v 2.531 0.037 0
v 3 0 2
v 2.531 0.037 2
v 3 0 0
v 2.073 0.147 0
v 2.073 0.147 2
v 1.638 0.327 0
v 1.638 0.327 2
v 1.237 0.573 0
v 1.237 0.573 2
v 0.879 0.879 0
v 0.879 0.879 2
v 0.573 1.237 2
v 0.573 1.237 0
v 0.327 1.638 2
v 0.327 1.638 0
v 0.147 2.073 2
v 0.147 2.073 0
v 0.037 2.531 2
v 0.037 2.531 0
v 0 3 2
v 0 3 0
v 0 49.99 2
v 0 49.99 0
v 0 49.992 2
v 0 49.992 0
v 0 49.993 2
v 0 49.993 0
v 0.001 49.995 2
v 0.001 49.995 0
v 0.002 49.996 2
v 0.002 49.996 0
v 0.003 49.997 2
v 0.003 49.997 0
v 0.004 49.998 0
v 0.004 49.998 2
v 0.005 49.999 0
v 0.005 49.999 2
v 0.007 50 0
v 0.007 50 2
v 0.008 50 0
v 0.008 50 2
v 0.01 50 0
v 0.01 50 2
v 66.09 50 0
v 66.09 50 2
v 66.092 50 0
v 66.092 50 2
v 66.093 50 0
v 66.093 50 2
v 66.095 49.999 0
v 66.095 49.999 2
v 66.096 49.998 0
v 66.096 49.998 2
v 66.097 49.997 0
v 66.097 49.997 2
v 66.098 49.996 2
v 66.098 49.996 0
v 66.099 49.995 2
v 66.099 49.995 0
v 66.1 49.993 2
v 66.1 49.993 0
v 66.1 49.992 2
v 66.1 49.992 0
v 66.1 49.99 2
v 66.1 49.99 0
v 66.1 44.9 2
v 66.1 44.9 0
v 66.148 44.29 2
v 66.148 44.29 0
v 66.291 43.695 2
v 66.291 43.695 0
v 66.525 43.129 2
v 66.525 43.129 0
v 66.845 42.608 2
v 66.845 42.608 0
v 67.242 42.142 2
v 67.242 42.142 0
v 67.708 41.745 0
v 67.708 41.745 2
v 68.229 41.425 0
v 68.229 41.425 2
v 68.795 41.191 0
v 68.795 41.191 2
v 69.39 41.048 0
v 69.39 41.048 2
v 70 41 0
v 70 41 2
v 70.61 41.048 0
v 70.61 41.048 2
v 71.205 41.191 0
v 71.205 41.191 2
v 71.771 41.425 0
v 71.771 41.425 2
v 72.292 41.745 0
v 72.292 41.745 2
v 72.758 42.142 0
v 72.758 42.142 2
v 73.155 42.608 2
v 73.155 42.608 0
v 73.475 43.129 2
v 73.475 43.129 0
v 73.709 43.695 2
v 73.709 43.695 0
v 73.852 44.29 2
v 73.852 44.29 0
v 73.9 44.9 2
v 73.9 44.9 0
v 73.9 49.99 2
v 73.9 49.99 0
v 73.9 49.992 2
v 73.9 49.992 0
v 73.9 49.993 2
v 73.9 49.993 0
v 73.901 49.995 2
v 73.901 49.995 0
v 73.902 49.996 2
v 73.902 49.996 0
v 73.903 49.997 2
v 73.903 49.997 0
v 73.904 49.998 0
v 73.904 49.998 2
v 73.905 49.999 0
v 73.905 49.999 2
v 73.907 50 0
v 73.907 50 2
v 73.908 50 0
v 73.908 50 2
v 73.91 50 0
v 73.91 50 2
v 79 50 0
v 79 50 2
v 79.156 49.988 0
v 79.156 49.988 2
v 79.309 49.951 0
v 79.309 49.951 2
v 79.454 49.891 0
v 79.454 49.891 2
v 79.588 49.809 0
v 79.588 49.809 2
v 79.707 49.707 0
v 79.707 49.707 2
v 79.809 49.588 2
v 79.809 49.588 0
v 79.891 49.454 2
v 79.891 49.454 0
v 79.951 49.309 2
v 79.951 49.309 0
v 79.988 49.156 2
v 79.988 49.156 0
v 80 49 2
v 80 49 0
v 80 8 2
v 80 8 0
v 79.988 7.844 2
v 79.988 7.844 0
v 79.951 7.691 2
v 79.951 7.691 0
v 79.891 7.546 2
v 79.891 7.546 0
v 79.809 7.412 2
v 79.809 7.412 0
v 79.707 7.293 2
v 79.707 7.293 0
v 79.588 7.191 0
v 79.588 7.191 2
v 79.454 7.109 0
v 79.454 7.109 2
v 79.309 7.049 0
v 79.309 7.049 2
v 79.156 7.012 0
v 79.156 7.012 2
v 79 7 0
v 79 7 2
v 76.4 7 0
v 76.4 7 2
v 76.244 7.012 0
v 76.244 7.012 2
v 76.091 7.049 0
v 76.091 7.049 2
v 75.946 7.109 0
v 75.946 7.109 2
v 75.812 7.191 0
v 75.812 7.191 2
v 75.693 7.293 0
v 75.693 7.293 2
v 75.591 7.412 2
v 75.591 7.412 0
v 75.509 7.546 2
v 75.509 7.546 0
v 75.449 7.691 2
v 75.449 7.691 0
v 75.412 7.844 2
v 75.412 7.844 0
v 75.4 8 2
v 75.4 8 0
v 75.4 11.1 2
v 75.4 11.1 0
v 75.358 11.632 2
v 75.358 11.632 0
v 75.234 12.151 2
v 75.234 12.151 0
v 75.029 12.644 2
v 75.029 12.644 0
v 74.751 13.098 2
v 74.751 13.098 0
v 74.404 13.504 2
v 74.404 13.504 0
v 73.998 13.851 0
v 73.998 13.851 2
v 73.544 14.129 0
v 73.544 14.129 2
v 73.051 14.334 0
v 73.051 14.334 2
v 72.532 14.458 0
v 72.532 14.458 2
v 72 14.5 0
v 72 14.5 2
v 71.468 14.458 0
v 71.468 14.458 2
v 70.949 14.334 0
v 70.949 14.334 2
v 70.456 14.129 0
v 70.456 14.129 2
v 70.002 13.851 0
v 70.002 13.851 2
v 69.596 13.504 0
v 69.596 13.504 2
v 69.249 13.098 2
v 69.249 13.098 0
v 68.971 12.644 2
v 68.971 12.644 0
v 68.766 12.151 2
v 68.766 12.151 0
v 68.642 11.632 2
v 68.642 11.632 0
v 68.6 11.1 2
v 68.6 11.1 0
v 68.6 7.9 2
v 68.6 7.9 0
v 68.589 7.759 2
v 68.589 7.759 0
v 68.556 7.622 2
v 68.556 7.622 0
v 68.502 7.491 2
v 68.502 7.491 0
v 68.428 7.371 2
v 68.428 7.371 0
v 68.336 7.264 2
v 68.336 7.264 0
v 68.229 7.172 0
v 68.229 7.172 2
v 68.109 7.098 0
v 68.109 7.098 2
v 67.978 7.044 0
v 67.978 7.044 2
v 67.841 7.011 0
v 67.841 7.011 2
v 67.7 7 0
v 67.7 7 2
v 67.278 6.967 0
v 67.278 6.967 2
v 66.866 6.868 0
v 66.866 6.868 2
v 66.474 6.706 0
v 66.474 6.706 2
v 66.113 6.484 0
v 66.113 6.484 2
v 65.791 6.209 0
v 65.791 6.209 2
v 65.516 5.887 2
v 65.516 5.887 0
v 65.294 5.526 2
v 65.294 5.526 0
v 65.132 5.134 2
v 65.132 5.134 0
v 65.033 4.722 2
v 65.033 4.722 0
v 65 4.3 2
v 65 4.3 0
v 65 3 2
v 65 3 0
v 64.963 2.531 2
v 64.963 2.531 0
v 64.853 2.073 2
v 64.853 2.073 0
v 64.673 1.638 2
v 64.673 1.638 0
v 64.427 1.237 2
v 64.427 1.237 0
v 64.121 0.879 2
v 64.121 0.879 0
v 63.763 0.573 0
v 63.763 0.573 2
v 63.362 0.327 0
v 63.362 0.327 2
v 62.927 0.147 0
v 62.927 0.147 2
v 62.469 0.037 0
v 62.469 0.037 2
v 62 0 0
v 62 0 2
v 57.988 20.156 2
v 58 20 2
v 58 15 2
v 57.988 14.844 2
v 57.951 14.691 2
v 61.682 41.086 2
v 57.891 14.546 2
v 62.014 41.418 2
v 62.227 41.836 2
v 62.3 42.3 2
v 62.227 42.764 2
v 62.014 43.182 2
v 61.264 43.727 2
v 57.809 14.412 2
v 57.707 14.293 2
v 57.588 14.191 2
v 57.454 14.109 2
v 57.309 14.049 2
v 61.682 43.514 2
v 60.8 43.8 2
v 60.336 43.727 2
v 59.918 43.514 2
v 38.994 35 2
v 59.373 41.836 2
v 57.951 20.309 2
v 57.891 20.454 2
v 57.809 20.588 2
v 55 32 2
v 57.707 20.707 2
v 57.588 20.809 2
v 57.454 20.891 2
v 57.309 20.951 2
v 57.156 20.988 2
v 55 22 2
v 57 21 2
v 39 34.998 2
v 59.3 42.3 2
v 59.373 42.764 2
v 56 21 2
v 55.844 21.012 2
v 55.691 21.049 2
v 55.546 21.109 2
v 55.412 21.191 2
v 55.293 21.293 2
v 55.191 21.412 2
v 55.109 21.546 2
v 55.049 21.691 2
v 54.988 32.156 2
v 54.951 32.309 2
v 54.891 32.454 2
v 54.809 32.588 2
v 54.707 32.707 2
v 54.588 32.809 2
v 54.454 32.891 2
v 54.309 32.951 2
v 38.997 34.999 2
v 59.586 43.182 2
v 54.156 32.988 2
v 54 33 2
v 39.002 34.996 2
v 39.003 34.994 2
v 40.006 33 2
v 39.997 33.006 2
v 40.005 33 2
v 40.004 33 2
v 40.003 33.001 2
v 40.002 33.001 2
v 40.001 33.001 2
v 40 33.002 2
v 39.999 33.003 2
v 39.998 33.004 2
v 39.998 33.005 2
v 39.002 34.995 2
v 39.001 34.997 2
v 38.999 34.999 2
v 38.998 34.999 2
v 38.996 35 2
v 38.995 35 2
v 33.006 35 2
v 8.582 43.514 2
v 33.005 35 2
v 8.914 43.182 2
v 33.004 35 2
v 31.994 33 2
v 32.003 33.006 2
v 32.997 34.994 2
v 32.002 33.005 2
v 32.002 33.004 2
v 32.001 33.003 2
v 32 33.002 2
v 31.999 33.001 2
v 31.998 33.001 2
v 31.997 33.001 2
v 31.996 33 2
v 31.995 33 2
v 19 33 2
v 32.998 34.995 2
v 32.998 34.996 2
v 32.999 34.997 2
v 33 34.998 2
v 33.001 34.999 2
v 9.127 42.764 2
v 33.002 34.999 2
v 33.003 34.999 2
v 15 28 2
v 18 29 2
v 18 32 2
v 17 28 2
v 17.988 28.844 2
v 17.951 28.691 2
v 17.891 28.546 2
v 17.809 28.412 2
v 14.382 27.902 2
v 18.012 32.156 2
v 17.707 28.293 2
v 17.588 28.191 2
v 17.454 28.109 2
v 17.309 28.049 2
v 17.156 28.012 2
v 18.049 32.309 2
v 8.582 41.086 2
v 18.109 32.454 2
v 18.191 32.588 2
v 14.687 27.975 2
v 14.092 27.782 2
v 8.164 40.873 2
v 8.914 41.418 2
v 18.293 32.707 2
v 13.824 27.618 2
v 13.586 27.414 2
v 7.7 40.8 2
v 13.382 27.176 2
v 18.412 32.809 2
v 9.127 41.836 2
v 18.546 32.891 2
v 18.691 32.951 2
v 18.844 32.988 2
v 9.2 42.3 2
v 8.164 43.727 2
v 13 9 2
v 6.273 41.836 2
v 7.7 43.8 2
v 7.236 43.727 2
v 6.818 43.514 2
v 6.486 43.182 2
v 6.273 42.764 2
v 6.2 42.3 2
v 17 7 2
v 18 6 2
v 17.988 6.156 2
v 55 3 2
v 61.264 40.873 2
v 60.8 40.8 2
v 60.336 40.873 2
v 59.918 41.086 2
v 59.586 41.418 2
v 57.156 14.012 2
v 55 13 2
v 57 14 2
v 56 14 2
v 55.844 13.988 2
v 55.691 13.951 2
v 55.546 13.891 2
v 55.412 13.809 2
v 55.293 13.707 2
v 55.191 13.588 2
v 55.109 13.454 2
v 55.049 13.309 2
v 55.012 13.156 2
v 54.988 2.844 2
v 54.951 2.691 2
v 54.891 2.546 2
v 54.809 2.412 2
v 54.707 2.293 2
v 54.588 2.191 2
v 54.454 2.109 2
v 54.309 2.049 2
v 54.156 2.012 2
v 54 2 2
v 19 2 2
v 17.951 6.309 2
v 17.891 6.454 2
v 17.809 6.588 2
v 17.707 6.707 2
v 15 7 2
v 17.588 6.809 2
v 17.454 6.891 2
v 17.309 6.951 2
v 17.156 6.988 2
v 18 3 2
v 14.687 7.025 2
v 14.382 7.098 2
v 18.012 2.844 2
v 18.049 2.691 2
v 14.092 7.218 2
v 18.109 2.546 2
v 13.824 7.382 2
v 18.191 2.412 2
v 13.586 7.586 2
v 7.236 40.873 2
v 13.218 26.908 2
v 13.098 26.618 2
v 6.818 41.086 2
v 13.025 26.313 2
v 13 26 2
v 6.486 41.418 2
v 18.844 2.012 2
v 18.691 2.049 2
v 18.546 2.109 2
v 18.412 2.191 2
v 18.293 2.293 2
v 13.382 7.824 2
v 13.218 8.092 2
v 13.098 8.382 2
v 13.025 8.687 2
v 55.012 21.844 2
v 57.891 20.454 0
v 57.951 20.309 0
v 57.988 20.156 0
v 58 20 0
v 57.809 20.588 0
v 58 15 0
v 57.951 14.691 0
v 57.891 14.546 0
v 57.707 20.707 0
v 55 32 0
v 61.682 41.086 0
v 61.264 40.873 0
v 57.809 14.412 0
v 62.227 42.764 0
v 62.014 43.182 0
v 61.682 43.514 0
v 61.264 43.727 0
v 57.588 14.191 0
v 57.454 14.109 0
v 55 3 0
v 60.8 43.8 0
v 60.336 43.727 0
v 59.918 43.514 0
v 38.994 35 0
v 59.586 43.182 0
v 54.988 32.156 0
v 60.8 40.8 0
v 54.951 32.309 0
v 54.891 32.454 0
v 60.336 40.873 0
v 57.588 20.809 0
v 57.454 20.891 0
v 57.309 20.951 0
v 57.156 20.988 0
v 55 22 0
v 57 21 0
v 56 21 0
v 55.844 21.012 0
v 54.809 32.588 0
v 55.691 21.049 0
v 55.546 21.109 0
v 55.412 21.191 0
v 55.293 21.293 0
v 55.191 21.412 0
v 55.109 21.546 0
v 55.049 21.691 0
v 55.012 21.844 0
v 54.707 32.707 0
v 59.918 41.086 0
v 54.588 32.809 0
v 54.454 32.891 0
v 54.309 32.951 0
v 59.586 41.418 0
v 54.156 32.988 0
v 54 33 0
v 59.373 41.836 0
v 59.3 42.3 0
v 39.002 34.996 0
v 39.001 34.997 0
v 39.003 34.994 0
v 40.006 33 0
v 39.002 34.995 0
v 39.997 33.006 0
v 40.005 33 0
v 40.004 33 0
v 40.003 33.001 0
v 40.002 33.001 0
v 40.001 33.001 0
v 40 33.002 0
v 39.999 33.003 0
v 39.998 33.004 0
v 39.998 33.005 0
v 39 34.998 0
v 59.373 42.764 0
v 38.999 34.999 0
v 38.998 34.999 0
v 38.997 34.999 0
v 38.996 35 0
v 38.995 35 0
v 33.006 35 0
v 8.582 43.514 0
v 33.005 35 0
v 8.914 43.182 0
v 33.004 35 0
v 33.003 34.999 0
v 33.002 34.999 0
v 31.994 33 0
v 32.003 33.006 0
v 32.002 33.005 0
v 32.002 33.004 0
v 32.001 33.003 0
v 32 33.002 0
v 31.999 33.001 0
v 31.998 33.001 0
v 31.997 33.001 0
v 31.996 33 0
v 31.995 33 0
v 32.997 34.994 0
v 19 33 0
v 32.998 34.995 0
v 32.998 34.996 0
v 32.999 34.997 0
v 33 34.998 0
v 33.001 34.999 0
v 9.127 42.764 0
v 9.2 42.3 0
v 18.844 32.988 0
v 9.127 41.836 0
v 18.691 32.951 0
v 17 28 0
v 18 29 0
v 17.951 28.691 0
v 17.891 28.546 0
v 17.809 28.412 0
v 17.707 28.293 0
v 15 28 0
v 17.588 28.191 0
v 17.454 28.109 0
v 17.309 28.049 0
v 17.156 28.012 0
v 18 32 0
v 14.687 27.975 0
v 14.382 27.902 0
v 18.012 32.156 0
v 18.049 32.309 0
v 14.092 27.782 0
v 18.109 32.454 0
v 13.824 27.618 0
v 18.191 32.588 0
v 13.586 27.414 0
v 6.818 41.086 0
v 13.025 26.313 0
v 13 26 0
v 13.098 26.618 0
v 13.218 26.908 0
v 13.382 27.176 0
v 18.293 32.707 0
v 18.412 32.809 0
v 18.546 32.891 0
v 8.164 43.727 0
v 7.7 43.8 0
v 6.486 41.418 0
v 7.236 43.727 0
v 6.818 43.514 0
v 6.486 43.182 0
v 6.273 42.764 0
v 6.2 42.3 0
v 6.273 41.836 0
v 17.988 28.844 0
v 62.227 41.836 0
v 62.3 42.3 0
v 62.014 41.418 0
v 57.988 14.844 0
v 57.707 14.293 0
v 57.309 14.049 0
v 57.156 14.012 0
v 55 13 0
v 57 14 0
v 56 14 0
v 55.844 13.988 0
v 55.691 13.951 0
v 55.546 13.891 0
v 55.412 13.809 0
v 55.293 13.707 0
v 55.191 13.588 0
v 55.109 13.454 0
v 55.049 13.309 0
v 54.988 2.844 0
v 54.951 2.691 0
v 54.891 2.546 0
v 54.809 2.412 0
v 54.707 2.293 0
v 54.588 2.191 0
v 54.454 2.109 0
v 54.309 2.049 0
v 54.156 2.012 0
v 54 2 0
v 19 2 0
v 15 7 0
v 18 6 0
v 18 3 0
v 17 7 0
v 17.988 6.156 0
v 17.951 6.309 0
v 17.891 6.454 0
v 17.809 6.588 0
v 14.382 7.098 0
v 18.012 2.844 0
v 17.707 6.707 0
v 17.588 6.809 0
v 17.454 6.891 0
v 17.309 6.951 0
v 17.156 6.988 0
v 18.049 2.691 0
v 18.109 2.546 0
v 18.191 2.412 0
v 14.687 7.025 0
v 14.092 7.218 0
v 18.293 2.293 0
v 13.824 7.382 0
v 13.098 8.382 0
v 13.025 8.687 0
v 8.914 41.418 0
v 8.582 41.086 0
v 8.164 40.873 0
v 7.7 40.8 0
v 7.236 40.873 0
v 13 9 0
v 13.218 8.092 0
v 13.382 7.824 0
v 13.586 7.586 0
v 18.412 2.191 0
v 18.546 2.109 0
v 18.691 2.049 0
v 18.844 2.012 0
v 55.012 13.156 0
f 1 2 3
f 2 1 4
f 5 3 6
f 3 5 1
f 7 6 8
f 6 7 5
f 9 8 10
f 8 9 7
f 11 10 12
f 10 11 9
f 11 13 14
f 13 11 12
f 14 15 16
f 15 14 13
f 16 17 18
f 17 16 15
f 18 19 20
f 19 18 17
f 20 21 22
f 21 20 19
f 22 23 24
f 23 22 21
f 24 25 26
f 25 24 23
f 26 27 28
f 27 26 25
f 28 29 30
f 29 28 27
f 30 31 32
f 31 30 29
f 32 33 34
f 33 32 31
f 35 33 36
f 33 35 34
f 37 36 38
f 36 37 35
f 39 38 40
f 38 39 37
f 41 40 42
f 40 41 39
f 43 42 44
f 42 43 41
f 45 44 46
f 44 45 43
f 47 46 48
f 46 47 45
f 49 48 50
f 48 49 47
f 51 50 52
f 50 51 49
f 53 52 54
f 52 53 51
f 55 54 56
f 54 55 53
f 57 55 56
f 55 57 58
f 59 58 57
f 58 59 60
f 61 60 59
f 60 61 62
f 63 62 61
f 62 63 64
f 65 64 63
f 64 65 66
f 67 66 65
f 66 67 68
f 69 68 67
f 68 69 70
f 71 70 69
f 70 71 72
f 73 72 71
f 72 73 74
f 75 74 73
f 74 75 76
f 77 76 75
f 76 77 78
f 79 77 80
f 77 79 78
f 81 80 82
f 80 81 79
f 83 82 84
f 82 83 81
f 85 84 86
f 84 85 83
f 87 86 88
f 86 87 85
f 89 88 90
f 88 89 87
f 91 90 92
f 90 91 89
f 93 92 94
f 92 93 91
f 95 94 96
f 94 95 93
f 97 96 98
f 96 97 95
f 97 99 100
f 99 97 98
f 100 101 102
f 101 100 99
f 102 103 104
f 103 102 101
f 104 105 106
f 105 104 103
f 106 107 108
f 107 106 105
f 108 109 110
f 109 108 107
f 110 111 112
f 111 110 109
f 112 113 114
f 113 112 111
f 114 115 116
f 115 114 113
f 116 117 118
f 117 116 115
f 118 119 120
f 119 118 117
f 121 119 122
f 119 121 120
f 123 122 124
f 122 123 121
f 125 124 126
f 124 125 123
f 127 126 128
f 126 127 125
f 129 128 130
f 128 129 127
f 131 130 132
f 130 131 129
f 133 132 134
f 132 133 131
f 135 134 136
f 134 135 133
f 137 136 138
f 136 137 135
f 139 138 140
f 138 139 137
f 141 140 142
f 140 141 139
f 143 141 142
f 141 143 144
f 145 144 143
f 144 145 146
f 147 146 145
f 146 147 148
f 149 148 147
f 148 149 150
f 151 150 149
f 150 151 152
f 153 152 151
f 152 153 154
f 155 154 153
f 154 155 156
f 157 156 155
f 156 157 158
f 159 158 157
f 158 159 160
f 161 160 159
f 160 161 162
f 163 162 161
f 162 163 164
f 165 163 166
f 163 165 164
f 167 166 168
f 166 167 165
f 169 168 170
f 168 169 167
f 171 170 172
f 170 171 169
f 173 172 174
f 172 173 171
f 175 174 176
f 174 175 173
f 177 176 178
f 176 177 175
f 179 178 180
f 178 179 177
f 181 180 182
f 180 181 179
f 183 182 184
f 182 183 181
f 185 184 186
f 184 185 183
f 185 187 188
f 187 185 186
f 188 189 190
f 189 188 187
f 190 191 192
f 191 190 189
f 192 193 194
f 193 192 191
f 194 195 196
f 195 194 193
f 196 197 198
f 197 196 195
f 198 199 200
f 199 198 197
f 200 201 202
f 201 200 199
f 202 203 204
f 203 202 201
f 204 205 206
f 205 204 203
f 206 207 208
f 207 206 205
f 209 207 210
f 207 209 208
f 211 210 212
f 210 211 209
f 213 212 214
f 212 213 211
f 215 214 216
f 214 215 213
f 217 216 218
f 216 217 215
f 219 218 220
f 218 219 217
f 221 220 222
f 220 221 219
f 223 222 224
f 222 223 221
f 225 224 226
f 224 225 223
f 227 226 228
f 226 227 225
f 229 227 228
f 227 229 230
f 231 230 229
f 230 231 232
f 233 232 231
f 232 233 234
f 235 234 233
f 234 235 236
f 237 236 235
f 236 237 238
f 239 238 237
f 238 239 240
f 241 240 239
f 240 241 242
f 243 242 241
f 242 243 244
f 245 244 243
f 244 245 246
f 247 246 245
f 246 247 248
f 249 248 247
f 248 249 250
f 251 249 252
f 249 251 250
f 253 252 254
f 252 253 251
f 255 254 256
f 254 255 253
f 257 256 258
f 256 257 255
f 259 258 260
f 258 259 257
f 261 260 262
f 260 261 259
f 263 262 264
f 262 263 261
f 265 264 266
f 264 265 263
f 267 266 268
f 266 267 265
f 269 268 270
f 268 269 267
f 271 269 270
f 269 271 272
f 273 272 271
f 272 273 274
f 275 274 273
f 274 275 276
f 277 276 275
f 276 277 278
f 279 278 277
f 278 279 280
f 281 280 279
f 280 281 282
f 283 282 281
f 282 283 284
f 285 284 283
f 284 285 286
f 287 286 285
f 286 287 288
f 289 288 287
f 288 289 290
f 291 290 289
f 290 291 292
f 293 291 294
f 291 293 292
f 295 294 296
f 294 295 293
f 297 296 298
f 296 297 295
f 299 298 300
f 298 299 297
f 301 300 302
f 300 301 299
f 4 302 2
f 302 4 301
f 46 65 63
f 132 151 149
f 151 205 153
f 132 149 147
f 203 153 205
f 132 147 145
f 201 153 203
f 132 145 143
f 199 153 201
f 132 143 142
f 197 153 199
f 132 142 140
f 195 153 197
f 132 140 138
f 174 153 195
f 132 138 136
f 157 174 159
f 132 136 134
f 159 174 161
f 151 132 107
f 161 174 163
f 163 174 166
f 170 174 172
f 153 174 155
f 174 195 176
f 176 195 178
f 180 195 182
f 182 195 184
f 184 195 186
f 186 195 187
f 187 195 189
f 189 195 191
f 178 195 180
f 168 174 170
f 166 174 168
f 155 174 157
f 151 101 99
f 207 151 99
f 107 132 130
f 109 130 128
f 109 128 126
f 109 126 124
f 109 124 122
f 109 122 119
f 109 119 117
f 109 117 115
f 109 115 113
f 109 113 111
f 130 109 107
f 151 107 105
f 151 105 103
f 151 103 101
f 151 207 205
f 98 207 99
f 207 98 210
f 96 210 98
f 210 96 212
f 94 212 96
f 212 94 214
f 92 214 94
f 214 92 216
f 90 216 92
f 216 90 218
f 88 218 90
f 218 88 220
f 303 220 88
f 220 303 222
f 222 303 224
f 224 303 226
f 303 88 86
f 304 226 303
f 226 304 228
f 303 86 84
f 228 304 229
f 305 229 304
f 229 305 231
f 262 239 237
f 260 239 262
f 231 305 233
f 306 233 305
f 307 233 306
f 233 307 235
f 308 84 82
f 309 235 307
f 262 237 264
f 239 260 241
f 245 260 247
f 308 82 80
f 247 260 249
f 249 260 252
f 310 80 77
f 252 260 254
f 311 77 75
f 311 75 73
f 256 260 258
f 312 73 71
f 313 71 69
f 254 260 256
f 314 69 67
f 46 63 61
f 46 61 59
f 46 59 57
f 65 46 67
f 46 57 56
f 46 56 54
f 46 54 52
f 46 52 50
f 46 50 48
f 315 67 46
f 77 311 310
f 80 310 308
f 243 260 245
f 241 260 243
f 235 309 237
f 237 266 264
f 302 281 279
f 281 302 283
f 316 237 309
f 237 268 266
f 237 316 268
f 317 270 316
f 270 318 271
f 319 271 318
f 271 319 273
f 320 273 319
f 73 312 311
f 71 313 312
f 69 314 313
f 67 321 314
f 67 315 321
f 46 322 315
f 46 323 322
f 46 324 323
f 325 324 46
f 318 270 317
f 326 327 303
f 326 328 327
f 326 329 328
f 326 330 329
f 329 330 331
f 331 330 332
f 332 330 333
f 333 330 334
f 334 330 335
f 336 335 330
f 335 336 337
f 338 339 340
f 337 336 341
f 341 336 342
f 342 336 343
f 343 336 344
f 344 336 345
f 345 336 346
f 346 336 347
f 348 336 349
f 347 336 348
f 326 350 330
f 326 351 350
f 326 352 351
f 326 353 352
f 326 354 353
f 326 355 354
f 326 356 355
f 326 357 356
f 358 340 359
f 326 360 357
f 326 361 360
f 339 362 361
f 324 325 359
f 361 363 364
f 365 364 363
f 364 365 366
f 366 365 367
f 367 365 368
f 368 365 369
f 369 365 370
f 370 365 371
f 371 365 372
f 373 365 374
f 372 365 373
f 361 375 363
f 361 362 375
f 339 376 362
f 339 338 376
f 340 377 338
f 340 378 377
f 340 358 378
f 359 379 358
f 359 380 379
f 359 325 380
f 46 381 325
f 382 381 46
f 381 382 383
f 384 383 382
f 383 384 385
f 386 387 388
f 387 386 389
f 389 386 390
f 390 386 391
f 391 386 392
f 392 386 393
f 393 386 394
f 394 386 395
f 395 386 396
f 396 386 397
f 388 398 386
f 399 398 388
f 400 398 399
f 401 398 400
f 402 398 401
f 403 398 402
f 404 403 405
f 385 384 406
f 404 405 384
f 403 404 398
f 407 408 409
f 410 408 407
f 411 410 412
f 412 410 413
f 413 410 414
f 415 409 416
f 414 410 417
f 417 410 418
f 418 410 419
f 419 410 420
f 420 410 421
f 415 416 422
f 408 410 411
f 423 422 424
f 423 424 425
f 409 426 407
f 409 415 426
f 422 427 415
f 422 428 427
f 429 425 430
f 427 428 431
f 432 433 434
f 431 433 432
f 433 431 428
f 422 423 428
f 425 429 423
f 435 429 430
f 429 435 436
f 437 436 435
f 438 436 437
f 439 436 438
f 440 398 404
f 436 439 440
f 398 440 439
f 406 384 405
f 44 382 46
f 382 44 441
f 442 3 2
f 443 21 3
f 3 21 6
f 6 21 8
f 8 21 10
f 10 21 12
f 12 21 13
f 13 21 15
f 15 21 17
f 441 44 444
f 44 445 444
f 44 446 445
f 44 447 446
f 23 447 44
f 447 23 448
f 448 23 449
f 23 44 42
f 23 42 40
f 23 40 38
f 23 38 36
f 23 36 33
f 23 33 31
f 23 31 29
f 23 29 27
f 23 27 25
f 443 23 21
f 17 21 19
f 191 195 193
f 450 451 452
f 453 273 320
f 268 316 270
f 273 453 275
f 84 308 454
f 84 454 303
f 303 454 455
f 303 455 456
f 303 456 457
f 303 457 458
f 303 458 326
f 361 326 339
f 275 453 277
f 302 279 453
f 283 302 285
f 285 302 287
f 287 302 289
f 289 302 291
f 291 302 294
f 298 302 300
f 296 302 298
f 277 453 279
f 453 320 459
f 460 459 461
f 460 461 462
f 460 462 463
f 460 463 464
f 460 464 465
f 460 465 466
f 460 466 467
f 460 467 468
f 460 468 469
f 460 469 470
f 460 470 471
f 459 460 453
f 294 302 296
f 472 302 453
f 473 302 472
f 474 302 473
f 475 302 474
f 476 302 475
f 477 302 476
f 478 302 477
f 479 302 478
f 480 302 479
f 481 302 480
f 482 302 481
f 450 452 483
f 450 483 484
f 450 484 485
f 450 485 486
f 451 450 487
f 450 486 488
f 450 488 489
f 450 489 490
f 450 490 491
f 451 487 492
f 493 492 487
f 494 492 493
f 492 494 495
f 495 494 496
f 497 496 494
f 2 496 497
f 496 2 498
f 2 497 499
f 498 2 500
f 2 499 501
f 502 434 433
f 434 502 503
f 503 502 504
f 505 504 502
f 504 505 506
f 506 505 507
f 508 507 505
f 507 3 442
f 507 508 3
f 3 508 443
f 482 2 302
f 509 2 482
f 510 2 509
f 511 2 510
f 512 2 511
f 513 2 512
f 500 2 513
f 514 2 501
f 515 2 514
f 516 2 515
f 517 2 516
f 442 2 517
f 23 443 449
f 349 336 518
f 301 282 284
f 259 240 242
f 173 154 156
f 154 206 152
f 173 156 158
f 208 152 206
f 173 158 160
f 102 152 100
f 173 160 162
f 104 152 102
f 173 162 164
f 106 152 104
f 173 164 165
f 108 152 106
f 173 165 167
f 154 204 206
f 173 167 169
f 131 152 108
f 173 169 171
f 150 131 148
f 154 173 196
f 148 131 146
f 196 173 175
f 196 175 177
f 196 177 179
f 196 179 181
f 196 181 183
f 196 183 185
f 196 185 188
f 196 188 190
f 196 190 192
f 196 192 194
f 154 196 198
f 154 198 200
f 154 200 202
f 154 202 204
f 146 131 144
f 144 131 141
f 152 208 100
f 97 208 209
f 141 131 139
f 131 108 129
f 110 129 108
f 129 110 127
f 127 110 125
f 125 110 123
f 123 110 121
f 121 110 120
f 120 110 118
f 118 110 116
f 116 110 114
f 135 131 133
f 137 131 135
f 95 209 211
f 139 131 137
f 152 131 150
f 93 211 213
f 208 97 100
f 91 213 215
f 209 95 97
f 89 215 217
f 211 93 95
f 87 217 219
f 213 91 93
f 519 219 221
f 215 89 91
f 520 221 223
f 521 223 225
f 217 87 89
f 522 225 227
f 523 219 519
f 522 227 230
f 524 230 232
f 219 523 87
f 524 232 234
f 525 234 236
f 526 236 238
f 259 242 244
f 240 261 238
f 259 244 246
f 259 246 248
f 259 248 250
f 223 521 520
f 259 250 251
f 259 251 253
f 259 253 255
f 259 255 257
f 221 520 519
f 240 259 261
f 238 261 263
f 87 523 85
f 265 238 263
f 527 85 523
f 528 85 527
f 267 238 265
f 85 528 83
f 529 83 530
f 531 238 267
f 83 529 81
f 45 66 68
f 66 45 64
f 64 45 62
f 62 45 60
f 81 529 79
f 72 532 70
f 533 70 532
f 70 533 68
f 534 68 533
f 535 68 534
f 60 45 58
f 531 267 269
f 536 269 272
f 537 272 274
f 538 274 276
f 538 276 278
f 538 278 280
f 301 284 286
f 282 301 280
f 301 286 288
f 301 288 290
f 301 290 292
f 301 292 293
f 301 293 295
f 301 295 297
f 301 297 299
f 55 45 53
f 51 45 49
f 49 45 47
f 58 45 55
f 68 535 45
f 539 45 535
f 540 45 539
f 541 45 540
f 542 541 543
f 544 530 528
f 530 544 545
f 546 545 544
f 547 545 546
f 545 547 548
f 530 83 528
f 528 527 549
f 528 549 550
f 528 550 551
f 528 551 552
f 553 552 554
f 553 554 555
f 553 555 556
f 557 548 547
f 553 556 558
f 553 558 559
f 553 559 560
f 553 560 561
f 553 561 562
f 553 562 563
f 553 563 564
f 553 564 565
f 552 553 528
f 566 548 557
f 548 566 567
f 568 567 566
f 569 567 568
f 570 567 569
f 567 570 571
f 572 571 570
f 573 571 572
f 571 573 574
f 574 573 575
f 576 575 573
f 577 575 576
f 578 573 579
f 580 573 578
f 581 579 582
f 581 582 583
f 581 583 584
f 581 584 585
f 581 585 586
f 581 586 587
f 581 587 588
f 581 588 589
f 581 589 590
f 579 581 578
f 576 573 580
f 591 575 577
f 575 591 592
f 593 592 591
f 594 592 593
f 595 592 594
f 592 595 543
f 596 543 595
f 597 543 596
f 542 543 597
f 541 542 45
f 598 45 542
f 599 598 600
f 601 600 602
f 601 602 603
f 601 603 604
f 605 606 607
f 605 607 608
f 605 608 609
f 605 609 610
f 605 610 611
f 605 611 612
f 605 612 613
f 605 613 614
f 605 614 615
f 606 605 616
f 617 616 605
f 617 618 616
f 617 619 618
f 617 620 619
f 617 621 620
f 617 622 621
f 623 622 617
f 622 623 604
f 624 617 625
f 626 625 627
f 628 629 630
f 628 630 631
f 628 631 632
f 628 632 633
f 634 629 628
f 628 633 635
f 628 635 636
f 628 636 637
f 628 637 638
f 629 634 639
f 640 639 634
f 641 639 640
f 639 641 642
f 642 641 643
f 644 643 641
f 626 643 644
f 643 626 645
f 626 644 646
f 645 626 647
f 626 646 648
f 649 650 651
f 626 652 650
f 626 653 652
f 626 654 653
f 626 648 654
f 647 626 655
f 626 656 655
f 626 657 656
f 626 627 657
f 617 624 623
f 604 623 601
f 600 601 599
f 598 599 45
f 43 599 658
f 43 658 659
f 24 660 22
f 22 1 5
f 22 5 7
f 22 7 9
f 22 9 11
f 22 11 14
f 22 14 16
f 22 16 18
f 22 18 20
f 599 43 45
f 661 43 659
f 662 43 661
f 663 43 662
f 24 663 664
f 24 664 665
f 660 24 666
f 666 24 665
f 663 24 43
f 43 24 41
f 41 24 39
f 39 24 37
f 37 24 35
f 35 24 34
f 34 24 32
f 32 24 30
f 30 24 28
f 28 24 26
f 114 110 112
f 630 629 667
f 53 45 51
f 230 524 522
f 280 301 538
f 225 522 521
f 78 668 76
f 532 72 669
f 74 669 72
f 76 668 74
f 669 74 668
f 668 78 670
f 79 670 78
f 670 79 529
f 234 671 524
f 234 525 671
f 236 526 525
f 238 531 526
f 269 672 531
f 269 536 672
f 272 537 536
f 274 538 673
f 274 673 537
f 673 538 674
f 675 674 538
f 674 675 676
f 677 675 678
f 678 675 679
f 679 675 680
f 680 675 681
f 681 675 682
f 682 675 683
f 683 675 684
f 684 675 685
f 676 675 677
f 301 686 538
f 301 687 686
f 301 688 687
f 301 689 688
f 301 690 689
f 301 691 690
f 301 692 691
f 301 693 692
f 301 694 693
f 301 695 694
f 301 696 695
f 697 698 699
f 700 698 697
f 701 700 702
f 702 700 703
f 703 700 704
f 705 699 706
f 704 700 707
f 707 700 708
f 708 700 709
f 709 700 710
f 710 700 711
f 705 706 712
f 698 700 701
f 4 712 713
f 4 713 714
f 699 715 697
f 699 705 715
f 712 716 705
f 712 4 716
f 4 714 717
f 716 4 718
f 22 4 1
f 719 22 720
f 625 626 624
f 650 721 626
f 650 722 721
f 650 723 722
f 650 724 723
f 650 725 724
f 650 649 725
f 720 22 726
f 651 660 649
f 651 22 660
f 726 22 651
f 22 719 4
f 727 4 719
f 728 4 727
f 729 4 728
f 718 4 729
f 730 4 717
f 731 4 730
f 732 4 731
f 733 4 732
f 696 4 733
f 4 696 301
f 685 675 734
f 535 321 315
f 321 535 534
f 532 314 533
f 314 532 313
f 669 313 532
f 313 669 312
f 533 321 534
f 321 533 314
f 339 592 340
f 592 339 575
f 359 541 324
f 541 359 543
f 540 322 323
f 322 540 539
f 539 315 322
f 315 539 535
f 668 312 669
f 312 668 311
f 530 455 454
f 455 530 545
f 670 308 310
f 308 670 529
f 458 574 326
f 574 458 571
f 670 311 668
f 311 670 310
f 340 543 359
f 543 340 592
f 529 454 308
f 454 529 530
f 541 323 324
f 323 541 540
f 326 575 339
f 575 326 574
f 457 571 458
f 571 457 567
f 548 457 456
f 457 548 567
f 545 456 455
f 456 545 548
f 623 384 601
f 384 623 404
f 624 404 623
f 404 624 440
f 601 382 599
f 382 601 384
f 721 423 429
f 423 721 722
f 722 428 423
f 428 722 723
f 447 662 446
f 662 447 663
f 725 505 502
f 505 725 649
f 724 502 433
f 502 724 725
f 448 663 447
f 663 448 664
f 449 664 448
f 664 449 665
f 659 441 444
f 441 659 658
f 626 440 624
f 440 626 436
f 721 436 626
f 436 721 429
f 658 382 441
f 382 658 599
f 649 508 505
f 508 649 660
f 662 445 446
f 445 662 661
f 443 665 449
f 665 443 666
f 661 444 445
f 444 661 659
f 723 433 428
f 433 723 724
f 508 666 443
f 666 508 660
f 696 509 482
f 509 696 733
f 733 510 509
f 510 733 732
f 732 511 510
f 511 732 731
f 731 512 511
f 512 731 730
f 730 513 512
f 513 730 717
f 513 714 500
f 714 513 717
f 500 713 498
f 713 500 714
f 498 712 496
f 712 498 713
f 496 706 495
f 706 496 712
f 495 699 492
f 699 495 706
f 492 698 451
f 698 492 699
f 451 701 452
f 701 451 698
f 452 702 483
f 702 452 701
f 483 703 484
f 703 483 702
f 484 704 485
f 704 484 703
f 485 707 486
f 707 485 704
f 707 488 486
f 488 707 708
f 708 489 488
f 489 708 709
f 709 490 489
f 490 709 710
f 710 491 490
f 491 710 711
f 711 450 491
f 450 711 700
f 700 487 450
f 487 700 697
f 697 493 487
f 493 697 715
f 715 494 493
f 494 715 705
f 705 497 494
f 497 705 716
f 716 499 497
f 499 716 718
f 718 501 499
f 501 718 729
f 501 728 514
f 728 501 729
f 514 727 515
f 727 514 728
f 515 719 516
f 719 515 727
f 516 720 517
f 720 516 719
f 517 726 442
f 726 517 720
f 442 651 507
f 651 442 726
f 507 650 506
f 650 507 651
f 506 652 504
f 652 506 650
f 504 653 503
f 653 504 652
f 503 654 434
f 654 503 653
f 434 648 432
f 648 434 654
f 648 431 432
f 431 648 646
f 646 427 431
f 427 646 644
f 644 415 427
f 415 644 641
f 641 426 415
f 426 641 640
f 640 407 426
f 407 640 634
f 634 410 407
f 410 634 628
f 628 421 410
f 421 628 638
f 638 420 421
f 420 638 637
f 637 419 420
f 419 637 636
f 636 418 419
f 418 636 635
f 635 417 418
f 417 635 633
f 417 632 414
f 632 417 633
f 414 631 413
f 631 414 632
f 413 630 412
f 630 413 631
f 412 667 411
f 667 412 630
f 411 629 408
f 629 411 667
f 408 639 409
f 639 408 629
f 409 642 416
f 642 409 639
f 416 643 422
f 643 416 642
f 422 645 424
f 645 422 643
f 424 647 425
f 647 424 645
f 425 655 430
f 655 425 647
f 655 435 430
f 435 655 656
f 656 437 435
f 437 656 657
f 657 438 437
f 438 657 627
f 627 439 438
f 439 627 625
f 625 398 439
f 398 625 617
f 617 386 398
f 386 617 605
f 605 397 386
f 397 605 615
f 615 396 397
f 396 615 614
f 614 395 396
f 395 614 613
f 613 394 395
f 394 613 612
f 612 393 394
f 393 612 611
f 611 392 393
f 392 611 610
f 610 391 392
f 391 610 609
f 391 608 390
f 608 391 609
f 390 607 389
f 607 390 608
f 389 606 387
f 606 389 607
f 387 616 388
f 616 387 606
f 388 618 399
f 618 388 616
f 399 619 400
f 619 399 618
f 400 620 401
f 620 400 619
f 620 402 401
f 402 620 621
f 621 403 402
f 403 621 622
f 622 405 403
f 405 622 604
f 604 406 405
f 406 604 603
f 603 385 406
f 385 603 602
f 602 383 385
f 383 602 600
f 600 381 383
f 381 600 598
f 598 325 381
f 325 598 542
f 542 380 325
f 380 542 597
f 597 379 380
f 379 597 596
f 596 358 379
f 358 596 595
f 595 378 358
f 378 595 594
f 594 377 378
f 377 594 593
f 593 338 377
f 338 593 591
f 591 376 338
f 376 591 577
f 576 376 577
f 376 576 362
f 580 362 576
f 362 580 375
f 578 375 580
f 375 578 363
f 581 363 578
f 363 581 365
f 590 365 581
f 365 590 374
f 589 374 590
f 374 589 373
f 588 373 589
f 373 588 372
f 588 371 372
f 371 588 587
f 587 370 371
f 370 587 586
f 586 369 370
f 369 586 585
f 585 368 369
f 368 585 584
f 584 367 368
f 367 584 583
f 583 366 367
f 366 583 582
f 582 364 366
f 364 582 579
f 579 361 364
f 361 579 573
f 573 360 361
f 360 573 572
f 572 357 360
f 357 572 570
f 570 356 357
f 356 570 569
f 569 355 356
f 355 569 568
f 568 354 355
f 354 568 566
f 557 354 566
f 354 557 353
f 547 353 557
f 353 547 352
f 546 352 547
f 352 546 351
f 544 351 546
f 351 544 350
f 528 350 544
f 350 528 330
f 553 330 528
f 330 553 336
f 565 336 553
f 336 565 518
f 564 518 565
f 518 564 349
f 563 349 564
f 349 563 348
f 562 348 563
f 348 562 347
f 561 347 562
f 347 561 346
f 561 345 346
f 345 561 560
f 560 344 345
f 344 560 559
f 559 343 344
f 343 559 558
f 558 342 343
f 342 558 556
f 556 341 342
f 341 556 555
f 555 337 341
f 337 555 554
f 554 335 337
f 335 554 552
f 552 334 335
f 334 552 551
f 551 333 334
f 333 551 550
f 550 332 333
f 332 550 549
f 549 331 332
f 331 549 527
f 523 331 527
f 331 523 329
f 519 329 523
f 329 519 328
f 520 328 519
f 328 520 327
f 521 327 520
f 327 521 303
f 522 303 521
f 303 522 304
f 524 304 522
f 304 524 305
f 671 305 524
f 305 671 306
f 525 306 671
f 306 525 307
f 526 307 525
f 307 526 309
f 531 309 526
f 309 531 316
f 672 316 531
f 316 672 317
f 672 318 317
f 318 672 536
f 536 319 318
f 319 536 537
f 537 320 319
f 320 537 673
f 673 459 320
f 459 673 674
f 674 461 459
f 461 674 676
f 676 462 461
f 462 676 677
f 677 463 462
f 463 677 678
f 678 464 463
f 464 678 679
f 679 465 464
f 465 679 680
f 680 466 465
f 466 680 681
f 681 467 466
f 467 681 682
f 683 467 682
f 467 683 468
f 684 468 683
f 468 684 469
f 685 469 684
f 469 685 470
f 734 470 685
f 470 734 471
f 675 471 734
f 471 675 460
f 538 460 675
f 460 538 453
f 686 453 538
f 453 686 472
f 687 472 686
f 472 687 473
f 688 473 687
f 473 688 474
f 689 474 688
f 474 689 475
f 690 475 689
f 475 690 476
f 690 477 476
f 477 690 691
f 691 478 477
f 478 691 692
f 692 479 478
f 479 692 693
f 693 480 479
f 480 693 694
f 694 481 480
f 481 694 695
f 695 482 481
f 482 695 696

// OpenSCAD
include <Round-Anything/polyround.scad>

thickness = 2;

plate_points = [
    [ 0, 0, 3 ],
    [ 0, 50, 0 ],
    [ 66.1, 50, 0 ],
    [ 66.1, 41, 4 ],
    [ 73.9, 41, 4 ],
    [ 73.9, 50, 0 ],
    [ 80, 50, 1 ],
    [ 80, 7, 1 ],
    [ 75.4, 7, 1 ],
    [ 75.4, 14.5, 3.5 ],
    [ 68.6, 14.5, 3.5 ],
    [ 68.6, 7, 1 ],
    [ 115 - 50, 7, 3 ],
    [ 115 - 50, 0, 3 ],
];

esc_points = [
    [ 0, 0, 1 ],
    [ 0, 5, 1 ],
    [ -5, 5, 2 ],
    [ -5, 26, 2 ],
    [ 0, 26, 1 ],
    [ 0, 31, 1 ],
    [ 14, 31, 0 ],
    [ 15, 33, 0 ],
    [ 21, 33, 0 ],
    [ 22, 31, 0 ],
    [ 37, 31, 1 ],
    [ 37, 19, 1 ],
    [ 40, 19, 1 ],
    [ 40, 12, 1 ],
    [ 37, 12, 1 ],
    [ 37, 0, 1 ],
];

difference() {
    difference() {
        polyRoundExtrude(plate_points, thickness, 0, 0);
        translate([60.8, 42.3, 0])
            cylinder(h = thickness, d=3, $fn=20);
        translate([7.7, 42.3, 0])
            cylinder(h = thickness, d=3, $fn=20);
    }
    translate([18, 2, 0]) {
        polyRoundExtrude(esc_points, thickness, 0, 0);
    }
    translate([18 + 18, 1, 0]) {
        //cylinder(thickness, d=1, $fn=30);
    }
}
